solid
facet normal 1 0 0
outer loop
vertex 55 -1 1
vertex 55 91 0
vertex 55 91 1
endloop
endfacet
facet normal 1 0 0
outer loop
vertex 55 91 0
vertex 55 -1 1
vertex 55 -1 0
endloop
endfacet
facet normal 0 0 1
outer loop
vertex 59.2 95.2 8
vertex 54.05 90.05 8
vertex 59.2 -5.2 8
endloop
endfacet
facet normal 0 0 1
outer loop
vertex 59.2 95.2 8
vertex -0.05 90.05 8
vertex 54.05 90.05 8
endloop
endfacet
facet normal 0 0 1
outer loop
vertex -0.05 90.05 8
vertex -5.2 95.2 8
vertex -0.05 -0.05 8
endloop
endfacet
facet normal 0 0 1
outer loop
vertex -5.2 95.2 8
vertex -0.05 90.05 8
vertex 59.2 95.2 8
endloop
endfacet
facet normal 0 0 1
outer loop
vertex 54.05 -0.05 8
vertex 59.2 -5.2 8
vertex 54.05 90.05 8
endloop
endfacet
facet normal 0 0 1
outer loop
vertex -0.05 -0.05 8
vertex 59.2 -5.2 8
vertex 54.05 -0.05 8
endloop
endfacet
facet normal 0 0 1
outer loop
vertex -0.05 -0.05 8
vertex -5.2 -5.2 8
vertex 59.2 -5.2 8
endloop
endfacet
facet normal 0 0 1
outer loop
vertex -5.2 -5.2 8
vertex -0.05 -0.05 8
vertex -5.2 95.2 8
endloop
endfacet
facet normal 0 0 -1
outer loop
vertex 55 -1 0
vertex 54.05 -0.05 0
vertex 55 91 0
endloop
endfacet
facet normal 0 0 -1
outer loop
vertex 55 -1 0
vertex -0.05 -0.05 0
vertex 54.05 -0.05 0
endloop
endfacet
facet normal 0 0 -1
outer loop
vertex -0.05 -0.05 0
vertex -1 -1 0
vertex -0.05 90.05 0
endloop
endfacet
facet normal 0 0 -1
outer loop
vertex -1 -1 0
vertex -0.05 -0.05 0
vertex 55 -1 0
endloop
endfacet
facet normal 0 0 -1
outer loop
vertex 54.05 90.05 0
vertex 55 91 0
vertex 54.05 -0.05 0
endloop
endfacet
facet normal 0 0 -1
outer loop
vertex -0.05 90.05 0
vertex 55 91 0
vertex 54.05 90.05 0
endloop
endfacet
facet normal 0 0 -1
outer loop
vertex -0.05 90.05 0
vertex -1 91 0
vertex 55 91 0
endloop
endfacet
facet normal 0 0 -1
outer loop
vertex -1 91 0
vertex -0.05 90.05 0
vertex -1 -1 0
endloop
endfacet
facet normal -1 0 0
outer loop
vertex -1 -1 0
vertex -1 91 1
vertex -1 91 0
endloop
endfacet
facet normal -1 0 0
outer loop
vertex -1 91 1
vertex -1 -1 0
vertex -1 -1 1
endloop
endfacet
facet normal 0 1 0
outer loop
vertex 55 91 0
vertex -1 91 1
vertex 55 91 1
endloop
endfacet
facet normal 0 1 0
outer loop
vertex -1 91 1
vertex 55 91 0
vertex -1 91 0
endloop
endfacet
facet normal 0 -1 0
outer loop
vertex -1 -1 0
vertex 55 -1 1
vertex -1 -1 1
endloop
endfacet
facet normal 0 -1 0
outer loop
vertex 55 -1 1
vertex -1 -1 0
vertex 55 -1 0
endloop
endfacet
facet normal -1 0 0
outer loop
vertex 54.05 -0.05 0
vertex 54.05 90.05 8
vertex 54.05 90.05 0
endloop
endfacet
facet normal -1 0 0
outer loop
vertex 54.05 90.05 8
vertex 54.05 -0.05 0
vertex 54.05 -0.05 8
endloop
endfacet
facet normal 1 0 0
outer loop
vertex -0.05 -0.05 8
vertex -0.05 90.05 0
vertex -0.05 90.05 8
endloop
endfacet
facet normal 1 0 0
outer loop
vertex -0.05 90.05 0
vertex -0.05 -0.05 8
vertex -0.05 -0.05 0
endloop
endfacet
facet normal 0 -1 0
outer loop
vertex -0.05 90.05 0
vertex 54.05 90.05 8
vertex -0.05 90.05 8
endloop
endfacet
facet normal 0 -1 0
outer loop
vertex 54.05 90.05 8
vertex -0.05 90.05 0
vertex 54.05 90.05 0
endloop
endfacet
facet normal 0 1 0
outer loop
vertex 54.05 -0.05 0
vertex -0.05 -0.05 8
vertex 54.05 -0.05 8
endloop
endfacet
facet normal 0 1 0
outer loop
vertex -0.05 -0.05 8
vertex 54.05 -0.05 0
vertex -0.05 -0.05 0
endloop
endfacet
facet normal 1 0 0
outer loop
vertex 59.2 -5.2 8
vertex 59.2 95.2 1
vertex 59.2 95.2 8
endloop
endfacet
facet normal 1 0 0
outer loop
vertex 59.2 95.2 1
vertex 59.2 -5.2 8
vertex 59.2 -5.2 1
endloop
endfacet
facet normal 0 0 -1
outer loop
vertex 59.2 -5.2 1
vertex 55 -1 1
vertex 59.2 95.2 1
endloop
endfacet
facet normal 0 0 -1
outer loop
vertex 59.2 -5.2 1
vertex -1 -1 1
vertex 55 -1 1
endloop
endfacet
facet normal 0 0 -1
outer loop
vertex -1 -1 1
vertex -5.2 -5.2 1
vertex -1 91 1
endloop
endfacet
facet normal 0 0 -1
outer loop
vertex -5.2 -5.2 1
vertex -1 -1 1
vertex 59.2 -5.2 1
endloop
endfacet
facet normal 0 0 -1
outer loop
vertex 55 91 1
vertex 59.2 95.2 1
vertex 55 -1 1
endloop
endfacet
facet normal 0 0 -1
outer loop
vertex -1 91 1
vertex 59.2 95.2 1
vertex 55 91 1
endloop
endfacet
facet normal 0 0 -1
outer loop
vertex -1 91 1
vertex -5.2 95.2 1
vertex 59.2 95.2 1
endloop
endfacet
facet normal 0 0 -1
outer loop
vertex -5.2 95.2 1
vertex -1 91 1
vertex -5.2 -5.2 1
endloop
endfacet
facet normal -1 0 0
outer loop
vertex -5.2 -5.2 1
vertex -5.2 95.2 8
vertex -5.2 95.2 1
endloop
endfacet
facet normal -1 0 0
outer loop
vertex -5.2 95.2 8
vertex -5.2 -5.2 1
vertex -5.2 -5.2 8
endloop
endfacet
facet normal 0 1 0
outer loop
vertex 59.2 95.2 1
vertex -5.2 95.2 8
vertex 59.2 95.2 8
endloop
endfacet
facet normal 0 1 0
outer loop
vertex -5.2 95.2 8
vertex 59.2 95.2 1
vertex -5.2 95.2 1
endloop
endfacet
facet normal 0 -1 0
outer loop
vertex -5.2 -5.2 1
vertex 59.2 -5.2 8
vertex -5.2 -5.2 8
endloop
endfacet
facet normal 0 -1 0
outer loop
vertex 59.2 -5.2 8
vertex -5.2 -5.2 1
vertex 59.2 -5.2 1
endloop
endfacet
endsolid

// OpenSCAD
// Generated by SolidPython 1.1.1 on 2021-10-20 16:45:16


union() {
	difference() {
		translate(v = [-1.0000000000, -1.0000000000, 0]) {
			cube(size = [56.0000000000, 92.0000000000, 8]);
		}
		translate(v = [-0.0500000000, -0.0500000000, 0]) {
			cube(size = [54.1000000000, 90.1000000000, 8]);
		}
	}
	translate(v = [0, 0, 1]) {
		difference() {
			translate(v = [-5.2000000000, -5.2000000000, 0]) {
				cube(size = [64.4000000000, 100.4000000000, 7]);
			}
			translate(v = [-1.0000000000, -1.0000000000, 0]) {
				cube(size = [56.0000000000, 92.0000000000, 7]);
			}
		}
	}
}
